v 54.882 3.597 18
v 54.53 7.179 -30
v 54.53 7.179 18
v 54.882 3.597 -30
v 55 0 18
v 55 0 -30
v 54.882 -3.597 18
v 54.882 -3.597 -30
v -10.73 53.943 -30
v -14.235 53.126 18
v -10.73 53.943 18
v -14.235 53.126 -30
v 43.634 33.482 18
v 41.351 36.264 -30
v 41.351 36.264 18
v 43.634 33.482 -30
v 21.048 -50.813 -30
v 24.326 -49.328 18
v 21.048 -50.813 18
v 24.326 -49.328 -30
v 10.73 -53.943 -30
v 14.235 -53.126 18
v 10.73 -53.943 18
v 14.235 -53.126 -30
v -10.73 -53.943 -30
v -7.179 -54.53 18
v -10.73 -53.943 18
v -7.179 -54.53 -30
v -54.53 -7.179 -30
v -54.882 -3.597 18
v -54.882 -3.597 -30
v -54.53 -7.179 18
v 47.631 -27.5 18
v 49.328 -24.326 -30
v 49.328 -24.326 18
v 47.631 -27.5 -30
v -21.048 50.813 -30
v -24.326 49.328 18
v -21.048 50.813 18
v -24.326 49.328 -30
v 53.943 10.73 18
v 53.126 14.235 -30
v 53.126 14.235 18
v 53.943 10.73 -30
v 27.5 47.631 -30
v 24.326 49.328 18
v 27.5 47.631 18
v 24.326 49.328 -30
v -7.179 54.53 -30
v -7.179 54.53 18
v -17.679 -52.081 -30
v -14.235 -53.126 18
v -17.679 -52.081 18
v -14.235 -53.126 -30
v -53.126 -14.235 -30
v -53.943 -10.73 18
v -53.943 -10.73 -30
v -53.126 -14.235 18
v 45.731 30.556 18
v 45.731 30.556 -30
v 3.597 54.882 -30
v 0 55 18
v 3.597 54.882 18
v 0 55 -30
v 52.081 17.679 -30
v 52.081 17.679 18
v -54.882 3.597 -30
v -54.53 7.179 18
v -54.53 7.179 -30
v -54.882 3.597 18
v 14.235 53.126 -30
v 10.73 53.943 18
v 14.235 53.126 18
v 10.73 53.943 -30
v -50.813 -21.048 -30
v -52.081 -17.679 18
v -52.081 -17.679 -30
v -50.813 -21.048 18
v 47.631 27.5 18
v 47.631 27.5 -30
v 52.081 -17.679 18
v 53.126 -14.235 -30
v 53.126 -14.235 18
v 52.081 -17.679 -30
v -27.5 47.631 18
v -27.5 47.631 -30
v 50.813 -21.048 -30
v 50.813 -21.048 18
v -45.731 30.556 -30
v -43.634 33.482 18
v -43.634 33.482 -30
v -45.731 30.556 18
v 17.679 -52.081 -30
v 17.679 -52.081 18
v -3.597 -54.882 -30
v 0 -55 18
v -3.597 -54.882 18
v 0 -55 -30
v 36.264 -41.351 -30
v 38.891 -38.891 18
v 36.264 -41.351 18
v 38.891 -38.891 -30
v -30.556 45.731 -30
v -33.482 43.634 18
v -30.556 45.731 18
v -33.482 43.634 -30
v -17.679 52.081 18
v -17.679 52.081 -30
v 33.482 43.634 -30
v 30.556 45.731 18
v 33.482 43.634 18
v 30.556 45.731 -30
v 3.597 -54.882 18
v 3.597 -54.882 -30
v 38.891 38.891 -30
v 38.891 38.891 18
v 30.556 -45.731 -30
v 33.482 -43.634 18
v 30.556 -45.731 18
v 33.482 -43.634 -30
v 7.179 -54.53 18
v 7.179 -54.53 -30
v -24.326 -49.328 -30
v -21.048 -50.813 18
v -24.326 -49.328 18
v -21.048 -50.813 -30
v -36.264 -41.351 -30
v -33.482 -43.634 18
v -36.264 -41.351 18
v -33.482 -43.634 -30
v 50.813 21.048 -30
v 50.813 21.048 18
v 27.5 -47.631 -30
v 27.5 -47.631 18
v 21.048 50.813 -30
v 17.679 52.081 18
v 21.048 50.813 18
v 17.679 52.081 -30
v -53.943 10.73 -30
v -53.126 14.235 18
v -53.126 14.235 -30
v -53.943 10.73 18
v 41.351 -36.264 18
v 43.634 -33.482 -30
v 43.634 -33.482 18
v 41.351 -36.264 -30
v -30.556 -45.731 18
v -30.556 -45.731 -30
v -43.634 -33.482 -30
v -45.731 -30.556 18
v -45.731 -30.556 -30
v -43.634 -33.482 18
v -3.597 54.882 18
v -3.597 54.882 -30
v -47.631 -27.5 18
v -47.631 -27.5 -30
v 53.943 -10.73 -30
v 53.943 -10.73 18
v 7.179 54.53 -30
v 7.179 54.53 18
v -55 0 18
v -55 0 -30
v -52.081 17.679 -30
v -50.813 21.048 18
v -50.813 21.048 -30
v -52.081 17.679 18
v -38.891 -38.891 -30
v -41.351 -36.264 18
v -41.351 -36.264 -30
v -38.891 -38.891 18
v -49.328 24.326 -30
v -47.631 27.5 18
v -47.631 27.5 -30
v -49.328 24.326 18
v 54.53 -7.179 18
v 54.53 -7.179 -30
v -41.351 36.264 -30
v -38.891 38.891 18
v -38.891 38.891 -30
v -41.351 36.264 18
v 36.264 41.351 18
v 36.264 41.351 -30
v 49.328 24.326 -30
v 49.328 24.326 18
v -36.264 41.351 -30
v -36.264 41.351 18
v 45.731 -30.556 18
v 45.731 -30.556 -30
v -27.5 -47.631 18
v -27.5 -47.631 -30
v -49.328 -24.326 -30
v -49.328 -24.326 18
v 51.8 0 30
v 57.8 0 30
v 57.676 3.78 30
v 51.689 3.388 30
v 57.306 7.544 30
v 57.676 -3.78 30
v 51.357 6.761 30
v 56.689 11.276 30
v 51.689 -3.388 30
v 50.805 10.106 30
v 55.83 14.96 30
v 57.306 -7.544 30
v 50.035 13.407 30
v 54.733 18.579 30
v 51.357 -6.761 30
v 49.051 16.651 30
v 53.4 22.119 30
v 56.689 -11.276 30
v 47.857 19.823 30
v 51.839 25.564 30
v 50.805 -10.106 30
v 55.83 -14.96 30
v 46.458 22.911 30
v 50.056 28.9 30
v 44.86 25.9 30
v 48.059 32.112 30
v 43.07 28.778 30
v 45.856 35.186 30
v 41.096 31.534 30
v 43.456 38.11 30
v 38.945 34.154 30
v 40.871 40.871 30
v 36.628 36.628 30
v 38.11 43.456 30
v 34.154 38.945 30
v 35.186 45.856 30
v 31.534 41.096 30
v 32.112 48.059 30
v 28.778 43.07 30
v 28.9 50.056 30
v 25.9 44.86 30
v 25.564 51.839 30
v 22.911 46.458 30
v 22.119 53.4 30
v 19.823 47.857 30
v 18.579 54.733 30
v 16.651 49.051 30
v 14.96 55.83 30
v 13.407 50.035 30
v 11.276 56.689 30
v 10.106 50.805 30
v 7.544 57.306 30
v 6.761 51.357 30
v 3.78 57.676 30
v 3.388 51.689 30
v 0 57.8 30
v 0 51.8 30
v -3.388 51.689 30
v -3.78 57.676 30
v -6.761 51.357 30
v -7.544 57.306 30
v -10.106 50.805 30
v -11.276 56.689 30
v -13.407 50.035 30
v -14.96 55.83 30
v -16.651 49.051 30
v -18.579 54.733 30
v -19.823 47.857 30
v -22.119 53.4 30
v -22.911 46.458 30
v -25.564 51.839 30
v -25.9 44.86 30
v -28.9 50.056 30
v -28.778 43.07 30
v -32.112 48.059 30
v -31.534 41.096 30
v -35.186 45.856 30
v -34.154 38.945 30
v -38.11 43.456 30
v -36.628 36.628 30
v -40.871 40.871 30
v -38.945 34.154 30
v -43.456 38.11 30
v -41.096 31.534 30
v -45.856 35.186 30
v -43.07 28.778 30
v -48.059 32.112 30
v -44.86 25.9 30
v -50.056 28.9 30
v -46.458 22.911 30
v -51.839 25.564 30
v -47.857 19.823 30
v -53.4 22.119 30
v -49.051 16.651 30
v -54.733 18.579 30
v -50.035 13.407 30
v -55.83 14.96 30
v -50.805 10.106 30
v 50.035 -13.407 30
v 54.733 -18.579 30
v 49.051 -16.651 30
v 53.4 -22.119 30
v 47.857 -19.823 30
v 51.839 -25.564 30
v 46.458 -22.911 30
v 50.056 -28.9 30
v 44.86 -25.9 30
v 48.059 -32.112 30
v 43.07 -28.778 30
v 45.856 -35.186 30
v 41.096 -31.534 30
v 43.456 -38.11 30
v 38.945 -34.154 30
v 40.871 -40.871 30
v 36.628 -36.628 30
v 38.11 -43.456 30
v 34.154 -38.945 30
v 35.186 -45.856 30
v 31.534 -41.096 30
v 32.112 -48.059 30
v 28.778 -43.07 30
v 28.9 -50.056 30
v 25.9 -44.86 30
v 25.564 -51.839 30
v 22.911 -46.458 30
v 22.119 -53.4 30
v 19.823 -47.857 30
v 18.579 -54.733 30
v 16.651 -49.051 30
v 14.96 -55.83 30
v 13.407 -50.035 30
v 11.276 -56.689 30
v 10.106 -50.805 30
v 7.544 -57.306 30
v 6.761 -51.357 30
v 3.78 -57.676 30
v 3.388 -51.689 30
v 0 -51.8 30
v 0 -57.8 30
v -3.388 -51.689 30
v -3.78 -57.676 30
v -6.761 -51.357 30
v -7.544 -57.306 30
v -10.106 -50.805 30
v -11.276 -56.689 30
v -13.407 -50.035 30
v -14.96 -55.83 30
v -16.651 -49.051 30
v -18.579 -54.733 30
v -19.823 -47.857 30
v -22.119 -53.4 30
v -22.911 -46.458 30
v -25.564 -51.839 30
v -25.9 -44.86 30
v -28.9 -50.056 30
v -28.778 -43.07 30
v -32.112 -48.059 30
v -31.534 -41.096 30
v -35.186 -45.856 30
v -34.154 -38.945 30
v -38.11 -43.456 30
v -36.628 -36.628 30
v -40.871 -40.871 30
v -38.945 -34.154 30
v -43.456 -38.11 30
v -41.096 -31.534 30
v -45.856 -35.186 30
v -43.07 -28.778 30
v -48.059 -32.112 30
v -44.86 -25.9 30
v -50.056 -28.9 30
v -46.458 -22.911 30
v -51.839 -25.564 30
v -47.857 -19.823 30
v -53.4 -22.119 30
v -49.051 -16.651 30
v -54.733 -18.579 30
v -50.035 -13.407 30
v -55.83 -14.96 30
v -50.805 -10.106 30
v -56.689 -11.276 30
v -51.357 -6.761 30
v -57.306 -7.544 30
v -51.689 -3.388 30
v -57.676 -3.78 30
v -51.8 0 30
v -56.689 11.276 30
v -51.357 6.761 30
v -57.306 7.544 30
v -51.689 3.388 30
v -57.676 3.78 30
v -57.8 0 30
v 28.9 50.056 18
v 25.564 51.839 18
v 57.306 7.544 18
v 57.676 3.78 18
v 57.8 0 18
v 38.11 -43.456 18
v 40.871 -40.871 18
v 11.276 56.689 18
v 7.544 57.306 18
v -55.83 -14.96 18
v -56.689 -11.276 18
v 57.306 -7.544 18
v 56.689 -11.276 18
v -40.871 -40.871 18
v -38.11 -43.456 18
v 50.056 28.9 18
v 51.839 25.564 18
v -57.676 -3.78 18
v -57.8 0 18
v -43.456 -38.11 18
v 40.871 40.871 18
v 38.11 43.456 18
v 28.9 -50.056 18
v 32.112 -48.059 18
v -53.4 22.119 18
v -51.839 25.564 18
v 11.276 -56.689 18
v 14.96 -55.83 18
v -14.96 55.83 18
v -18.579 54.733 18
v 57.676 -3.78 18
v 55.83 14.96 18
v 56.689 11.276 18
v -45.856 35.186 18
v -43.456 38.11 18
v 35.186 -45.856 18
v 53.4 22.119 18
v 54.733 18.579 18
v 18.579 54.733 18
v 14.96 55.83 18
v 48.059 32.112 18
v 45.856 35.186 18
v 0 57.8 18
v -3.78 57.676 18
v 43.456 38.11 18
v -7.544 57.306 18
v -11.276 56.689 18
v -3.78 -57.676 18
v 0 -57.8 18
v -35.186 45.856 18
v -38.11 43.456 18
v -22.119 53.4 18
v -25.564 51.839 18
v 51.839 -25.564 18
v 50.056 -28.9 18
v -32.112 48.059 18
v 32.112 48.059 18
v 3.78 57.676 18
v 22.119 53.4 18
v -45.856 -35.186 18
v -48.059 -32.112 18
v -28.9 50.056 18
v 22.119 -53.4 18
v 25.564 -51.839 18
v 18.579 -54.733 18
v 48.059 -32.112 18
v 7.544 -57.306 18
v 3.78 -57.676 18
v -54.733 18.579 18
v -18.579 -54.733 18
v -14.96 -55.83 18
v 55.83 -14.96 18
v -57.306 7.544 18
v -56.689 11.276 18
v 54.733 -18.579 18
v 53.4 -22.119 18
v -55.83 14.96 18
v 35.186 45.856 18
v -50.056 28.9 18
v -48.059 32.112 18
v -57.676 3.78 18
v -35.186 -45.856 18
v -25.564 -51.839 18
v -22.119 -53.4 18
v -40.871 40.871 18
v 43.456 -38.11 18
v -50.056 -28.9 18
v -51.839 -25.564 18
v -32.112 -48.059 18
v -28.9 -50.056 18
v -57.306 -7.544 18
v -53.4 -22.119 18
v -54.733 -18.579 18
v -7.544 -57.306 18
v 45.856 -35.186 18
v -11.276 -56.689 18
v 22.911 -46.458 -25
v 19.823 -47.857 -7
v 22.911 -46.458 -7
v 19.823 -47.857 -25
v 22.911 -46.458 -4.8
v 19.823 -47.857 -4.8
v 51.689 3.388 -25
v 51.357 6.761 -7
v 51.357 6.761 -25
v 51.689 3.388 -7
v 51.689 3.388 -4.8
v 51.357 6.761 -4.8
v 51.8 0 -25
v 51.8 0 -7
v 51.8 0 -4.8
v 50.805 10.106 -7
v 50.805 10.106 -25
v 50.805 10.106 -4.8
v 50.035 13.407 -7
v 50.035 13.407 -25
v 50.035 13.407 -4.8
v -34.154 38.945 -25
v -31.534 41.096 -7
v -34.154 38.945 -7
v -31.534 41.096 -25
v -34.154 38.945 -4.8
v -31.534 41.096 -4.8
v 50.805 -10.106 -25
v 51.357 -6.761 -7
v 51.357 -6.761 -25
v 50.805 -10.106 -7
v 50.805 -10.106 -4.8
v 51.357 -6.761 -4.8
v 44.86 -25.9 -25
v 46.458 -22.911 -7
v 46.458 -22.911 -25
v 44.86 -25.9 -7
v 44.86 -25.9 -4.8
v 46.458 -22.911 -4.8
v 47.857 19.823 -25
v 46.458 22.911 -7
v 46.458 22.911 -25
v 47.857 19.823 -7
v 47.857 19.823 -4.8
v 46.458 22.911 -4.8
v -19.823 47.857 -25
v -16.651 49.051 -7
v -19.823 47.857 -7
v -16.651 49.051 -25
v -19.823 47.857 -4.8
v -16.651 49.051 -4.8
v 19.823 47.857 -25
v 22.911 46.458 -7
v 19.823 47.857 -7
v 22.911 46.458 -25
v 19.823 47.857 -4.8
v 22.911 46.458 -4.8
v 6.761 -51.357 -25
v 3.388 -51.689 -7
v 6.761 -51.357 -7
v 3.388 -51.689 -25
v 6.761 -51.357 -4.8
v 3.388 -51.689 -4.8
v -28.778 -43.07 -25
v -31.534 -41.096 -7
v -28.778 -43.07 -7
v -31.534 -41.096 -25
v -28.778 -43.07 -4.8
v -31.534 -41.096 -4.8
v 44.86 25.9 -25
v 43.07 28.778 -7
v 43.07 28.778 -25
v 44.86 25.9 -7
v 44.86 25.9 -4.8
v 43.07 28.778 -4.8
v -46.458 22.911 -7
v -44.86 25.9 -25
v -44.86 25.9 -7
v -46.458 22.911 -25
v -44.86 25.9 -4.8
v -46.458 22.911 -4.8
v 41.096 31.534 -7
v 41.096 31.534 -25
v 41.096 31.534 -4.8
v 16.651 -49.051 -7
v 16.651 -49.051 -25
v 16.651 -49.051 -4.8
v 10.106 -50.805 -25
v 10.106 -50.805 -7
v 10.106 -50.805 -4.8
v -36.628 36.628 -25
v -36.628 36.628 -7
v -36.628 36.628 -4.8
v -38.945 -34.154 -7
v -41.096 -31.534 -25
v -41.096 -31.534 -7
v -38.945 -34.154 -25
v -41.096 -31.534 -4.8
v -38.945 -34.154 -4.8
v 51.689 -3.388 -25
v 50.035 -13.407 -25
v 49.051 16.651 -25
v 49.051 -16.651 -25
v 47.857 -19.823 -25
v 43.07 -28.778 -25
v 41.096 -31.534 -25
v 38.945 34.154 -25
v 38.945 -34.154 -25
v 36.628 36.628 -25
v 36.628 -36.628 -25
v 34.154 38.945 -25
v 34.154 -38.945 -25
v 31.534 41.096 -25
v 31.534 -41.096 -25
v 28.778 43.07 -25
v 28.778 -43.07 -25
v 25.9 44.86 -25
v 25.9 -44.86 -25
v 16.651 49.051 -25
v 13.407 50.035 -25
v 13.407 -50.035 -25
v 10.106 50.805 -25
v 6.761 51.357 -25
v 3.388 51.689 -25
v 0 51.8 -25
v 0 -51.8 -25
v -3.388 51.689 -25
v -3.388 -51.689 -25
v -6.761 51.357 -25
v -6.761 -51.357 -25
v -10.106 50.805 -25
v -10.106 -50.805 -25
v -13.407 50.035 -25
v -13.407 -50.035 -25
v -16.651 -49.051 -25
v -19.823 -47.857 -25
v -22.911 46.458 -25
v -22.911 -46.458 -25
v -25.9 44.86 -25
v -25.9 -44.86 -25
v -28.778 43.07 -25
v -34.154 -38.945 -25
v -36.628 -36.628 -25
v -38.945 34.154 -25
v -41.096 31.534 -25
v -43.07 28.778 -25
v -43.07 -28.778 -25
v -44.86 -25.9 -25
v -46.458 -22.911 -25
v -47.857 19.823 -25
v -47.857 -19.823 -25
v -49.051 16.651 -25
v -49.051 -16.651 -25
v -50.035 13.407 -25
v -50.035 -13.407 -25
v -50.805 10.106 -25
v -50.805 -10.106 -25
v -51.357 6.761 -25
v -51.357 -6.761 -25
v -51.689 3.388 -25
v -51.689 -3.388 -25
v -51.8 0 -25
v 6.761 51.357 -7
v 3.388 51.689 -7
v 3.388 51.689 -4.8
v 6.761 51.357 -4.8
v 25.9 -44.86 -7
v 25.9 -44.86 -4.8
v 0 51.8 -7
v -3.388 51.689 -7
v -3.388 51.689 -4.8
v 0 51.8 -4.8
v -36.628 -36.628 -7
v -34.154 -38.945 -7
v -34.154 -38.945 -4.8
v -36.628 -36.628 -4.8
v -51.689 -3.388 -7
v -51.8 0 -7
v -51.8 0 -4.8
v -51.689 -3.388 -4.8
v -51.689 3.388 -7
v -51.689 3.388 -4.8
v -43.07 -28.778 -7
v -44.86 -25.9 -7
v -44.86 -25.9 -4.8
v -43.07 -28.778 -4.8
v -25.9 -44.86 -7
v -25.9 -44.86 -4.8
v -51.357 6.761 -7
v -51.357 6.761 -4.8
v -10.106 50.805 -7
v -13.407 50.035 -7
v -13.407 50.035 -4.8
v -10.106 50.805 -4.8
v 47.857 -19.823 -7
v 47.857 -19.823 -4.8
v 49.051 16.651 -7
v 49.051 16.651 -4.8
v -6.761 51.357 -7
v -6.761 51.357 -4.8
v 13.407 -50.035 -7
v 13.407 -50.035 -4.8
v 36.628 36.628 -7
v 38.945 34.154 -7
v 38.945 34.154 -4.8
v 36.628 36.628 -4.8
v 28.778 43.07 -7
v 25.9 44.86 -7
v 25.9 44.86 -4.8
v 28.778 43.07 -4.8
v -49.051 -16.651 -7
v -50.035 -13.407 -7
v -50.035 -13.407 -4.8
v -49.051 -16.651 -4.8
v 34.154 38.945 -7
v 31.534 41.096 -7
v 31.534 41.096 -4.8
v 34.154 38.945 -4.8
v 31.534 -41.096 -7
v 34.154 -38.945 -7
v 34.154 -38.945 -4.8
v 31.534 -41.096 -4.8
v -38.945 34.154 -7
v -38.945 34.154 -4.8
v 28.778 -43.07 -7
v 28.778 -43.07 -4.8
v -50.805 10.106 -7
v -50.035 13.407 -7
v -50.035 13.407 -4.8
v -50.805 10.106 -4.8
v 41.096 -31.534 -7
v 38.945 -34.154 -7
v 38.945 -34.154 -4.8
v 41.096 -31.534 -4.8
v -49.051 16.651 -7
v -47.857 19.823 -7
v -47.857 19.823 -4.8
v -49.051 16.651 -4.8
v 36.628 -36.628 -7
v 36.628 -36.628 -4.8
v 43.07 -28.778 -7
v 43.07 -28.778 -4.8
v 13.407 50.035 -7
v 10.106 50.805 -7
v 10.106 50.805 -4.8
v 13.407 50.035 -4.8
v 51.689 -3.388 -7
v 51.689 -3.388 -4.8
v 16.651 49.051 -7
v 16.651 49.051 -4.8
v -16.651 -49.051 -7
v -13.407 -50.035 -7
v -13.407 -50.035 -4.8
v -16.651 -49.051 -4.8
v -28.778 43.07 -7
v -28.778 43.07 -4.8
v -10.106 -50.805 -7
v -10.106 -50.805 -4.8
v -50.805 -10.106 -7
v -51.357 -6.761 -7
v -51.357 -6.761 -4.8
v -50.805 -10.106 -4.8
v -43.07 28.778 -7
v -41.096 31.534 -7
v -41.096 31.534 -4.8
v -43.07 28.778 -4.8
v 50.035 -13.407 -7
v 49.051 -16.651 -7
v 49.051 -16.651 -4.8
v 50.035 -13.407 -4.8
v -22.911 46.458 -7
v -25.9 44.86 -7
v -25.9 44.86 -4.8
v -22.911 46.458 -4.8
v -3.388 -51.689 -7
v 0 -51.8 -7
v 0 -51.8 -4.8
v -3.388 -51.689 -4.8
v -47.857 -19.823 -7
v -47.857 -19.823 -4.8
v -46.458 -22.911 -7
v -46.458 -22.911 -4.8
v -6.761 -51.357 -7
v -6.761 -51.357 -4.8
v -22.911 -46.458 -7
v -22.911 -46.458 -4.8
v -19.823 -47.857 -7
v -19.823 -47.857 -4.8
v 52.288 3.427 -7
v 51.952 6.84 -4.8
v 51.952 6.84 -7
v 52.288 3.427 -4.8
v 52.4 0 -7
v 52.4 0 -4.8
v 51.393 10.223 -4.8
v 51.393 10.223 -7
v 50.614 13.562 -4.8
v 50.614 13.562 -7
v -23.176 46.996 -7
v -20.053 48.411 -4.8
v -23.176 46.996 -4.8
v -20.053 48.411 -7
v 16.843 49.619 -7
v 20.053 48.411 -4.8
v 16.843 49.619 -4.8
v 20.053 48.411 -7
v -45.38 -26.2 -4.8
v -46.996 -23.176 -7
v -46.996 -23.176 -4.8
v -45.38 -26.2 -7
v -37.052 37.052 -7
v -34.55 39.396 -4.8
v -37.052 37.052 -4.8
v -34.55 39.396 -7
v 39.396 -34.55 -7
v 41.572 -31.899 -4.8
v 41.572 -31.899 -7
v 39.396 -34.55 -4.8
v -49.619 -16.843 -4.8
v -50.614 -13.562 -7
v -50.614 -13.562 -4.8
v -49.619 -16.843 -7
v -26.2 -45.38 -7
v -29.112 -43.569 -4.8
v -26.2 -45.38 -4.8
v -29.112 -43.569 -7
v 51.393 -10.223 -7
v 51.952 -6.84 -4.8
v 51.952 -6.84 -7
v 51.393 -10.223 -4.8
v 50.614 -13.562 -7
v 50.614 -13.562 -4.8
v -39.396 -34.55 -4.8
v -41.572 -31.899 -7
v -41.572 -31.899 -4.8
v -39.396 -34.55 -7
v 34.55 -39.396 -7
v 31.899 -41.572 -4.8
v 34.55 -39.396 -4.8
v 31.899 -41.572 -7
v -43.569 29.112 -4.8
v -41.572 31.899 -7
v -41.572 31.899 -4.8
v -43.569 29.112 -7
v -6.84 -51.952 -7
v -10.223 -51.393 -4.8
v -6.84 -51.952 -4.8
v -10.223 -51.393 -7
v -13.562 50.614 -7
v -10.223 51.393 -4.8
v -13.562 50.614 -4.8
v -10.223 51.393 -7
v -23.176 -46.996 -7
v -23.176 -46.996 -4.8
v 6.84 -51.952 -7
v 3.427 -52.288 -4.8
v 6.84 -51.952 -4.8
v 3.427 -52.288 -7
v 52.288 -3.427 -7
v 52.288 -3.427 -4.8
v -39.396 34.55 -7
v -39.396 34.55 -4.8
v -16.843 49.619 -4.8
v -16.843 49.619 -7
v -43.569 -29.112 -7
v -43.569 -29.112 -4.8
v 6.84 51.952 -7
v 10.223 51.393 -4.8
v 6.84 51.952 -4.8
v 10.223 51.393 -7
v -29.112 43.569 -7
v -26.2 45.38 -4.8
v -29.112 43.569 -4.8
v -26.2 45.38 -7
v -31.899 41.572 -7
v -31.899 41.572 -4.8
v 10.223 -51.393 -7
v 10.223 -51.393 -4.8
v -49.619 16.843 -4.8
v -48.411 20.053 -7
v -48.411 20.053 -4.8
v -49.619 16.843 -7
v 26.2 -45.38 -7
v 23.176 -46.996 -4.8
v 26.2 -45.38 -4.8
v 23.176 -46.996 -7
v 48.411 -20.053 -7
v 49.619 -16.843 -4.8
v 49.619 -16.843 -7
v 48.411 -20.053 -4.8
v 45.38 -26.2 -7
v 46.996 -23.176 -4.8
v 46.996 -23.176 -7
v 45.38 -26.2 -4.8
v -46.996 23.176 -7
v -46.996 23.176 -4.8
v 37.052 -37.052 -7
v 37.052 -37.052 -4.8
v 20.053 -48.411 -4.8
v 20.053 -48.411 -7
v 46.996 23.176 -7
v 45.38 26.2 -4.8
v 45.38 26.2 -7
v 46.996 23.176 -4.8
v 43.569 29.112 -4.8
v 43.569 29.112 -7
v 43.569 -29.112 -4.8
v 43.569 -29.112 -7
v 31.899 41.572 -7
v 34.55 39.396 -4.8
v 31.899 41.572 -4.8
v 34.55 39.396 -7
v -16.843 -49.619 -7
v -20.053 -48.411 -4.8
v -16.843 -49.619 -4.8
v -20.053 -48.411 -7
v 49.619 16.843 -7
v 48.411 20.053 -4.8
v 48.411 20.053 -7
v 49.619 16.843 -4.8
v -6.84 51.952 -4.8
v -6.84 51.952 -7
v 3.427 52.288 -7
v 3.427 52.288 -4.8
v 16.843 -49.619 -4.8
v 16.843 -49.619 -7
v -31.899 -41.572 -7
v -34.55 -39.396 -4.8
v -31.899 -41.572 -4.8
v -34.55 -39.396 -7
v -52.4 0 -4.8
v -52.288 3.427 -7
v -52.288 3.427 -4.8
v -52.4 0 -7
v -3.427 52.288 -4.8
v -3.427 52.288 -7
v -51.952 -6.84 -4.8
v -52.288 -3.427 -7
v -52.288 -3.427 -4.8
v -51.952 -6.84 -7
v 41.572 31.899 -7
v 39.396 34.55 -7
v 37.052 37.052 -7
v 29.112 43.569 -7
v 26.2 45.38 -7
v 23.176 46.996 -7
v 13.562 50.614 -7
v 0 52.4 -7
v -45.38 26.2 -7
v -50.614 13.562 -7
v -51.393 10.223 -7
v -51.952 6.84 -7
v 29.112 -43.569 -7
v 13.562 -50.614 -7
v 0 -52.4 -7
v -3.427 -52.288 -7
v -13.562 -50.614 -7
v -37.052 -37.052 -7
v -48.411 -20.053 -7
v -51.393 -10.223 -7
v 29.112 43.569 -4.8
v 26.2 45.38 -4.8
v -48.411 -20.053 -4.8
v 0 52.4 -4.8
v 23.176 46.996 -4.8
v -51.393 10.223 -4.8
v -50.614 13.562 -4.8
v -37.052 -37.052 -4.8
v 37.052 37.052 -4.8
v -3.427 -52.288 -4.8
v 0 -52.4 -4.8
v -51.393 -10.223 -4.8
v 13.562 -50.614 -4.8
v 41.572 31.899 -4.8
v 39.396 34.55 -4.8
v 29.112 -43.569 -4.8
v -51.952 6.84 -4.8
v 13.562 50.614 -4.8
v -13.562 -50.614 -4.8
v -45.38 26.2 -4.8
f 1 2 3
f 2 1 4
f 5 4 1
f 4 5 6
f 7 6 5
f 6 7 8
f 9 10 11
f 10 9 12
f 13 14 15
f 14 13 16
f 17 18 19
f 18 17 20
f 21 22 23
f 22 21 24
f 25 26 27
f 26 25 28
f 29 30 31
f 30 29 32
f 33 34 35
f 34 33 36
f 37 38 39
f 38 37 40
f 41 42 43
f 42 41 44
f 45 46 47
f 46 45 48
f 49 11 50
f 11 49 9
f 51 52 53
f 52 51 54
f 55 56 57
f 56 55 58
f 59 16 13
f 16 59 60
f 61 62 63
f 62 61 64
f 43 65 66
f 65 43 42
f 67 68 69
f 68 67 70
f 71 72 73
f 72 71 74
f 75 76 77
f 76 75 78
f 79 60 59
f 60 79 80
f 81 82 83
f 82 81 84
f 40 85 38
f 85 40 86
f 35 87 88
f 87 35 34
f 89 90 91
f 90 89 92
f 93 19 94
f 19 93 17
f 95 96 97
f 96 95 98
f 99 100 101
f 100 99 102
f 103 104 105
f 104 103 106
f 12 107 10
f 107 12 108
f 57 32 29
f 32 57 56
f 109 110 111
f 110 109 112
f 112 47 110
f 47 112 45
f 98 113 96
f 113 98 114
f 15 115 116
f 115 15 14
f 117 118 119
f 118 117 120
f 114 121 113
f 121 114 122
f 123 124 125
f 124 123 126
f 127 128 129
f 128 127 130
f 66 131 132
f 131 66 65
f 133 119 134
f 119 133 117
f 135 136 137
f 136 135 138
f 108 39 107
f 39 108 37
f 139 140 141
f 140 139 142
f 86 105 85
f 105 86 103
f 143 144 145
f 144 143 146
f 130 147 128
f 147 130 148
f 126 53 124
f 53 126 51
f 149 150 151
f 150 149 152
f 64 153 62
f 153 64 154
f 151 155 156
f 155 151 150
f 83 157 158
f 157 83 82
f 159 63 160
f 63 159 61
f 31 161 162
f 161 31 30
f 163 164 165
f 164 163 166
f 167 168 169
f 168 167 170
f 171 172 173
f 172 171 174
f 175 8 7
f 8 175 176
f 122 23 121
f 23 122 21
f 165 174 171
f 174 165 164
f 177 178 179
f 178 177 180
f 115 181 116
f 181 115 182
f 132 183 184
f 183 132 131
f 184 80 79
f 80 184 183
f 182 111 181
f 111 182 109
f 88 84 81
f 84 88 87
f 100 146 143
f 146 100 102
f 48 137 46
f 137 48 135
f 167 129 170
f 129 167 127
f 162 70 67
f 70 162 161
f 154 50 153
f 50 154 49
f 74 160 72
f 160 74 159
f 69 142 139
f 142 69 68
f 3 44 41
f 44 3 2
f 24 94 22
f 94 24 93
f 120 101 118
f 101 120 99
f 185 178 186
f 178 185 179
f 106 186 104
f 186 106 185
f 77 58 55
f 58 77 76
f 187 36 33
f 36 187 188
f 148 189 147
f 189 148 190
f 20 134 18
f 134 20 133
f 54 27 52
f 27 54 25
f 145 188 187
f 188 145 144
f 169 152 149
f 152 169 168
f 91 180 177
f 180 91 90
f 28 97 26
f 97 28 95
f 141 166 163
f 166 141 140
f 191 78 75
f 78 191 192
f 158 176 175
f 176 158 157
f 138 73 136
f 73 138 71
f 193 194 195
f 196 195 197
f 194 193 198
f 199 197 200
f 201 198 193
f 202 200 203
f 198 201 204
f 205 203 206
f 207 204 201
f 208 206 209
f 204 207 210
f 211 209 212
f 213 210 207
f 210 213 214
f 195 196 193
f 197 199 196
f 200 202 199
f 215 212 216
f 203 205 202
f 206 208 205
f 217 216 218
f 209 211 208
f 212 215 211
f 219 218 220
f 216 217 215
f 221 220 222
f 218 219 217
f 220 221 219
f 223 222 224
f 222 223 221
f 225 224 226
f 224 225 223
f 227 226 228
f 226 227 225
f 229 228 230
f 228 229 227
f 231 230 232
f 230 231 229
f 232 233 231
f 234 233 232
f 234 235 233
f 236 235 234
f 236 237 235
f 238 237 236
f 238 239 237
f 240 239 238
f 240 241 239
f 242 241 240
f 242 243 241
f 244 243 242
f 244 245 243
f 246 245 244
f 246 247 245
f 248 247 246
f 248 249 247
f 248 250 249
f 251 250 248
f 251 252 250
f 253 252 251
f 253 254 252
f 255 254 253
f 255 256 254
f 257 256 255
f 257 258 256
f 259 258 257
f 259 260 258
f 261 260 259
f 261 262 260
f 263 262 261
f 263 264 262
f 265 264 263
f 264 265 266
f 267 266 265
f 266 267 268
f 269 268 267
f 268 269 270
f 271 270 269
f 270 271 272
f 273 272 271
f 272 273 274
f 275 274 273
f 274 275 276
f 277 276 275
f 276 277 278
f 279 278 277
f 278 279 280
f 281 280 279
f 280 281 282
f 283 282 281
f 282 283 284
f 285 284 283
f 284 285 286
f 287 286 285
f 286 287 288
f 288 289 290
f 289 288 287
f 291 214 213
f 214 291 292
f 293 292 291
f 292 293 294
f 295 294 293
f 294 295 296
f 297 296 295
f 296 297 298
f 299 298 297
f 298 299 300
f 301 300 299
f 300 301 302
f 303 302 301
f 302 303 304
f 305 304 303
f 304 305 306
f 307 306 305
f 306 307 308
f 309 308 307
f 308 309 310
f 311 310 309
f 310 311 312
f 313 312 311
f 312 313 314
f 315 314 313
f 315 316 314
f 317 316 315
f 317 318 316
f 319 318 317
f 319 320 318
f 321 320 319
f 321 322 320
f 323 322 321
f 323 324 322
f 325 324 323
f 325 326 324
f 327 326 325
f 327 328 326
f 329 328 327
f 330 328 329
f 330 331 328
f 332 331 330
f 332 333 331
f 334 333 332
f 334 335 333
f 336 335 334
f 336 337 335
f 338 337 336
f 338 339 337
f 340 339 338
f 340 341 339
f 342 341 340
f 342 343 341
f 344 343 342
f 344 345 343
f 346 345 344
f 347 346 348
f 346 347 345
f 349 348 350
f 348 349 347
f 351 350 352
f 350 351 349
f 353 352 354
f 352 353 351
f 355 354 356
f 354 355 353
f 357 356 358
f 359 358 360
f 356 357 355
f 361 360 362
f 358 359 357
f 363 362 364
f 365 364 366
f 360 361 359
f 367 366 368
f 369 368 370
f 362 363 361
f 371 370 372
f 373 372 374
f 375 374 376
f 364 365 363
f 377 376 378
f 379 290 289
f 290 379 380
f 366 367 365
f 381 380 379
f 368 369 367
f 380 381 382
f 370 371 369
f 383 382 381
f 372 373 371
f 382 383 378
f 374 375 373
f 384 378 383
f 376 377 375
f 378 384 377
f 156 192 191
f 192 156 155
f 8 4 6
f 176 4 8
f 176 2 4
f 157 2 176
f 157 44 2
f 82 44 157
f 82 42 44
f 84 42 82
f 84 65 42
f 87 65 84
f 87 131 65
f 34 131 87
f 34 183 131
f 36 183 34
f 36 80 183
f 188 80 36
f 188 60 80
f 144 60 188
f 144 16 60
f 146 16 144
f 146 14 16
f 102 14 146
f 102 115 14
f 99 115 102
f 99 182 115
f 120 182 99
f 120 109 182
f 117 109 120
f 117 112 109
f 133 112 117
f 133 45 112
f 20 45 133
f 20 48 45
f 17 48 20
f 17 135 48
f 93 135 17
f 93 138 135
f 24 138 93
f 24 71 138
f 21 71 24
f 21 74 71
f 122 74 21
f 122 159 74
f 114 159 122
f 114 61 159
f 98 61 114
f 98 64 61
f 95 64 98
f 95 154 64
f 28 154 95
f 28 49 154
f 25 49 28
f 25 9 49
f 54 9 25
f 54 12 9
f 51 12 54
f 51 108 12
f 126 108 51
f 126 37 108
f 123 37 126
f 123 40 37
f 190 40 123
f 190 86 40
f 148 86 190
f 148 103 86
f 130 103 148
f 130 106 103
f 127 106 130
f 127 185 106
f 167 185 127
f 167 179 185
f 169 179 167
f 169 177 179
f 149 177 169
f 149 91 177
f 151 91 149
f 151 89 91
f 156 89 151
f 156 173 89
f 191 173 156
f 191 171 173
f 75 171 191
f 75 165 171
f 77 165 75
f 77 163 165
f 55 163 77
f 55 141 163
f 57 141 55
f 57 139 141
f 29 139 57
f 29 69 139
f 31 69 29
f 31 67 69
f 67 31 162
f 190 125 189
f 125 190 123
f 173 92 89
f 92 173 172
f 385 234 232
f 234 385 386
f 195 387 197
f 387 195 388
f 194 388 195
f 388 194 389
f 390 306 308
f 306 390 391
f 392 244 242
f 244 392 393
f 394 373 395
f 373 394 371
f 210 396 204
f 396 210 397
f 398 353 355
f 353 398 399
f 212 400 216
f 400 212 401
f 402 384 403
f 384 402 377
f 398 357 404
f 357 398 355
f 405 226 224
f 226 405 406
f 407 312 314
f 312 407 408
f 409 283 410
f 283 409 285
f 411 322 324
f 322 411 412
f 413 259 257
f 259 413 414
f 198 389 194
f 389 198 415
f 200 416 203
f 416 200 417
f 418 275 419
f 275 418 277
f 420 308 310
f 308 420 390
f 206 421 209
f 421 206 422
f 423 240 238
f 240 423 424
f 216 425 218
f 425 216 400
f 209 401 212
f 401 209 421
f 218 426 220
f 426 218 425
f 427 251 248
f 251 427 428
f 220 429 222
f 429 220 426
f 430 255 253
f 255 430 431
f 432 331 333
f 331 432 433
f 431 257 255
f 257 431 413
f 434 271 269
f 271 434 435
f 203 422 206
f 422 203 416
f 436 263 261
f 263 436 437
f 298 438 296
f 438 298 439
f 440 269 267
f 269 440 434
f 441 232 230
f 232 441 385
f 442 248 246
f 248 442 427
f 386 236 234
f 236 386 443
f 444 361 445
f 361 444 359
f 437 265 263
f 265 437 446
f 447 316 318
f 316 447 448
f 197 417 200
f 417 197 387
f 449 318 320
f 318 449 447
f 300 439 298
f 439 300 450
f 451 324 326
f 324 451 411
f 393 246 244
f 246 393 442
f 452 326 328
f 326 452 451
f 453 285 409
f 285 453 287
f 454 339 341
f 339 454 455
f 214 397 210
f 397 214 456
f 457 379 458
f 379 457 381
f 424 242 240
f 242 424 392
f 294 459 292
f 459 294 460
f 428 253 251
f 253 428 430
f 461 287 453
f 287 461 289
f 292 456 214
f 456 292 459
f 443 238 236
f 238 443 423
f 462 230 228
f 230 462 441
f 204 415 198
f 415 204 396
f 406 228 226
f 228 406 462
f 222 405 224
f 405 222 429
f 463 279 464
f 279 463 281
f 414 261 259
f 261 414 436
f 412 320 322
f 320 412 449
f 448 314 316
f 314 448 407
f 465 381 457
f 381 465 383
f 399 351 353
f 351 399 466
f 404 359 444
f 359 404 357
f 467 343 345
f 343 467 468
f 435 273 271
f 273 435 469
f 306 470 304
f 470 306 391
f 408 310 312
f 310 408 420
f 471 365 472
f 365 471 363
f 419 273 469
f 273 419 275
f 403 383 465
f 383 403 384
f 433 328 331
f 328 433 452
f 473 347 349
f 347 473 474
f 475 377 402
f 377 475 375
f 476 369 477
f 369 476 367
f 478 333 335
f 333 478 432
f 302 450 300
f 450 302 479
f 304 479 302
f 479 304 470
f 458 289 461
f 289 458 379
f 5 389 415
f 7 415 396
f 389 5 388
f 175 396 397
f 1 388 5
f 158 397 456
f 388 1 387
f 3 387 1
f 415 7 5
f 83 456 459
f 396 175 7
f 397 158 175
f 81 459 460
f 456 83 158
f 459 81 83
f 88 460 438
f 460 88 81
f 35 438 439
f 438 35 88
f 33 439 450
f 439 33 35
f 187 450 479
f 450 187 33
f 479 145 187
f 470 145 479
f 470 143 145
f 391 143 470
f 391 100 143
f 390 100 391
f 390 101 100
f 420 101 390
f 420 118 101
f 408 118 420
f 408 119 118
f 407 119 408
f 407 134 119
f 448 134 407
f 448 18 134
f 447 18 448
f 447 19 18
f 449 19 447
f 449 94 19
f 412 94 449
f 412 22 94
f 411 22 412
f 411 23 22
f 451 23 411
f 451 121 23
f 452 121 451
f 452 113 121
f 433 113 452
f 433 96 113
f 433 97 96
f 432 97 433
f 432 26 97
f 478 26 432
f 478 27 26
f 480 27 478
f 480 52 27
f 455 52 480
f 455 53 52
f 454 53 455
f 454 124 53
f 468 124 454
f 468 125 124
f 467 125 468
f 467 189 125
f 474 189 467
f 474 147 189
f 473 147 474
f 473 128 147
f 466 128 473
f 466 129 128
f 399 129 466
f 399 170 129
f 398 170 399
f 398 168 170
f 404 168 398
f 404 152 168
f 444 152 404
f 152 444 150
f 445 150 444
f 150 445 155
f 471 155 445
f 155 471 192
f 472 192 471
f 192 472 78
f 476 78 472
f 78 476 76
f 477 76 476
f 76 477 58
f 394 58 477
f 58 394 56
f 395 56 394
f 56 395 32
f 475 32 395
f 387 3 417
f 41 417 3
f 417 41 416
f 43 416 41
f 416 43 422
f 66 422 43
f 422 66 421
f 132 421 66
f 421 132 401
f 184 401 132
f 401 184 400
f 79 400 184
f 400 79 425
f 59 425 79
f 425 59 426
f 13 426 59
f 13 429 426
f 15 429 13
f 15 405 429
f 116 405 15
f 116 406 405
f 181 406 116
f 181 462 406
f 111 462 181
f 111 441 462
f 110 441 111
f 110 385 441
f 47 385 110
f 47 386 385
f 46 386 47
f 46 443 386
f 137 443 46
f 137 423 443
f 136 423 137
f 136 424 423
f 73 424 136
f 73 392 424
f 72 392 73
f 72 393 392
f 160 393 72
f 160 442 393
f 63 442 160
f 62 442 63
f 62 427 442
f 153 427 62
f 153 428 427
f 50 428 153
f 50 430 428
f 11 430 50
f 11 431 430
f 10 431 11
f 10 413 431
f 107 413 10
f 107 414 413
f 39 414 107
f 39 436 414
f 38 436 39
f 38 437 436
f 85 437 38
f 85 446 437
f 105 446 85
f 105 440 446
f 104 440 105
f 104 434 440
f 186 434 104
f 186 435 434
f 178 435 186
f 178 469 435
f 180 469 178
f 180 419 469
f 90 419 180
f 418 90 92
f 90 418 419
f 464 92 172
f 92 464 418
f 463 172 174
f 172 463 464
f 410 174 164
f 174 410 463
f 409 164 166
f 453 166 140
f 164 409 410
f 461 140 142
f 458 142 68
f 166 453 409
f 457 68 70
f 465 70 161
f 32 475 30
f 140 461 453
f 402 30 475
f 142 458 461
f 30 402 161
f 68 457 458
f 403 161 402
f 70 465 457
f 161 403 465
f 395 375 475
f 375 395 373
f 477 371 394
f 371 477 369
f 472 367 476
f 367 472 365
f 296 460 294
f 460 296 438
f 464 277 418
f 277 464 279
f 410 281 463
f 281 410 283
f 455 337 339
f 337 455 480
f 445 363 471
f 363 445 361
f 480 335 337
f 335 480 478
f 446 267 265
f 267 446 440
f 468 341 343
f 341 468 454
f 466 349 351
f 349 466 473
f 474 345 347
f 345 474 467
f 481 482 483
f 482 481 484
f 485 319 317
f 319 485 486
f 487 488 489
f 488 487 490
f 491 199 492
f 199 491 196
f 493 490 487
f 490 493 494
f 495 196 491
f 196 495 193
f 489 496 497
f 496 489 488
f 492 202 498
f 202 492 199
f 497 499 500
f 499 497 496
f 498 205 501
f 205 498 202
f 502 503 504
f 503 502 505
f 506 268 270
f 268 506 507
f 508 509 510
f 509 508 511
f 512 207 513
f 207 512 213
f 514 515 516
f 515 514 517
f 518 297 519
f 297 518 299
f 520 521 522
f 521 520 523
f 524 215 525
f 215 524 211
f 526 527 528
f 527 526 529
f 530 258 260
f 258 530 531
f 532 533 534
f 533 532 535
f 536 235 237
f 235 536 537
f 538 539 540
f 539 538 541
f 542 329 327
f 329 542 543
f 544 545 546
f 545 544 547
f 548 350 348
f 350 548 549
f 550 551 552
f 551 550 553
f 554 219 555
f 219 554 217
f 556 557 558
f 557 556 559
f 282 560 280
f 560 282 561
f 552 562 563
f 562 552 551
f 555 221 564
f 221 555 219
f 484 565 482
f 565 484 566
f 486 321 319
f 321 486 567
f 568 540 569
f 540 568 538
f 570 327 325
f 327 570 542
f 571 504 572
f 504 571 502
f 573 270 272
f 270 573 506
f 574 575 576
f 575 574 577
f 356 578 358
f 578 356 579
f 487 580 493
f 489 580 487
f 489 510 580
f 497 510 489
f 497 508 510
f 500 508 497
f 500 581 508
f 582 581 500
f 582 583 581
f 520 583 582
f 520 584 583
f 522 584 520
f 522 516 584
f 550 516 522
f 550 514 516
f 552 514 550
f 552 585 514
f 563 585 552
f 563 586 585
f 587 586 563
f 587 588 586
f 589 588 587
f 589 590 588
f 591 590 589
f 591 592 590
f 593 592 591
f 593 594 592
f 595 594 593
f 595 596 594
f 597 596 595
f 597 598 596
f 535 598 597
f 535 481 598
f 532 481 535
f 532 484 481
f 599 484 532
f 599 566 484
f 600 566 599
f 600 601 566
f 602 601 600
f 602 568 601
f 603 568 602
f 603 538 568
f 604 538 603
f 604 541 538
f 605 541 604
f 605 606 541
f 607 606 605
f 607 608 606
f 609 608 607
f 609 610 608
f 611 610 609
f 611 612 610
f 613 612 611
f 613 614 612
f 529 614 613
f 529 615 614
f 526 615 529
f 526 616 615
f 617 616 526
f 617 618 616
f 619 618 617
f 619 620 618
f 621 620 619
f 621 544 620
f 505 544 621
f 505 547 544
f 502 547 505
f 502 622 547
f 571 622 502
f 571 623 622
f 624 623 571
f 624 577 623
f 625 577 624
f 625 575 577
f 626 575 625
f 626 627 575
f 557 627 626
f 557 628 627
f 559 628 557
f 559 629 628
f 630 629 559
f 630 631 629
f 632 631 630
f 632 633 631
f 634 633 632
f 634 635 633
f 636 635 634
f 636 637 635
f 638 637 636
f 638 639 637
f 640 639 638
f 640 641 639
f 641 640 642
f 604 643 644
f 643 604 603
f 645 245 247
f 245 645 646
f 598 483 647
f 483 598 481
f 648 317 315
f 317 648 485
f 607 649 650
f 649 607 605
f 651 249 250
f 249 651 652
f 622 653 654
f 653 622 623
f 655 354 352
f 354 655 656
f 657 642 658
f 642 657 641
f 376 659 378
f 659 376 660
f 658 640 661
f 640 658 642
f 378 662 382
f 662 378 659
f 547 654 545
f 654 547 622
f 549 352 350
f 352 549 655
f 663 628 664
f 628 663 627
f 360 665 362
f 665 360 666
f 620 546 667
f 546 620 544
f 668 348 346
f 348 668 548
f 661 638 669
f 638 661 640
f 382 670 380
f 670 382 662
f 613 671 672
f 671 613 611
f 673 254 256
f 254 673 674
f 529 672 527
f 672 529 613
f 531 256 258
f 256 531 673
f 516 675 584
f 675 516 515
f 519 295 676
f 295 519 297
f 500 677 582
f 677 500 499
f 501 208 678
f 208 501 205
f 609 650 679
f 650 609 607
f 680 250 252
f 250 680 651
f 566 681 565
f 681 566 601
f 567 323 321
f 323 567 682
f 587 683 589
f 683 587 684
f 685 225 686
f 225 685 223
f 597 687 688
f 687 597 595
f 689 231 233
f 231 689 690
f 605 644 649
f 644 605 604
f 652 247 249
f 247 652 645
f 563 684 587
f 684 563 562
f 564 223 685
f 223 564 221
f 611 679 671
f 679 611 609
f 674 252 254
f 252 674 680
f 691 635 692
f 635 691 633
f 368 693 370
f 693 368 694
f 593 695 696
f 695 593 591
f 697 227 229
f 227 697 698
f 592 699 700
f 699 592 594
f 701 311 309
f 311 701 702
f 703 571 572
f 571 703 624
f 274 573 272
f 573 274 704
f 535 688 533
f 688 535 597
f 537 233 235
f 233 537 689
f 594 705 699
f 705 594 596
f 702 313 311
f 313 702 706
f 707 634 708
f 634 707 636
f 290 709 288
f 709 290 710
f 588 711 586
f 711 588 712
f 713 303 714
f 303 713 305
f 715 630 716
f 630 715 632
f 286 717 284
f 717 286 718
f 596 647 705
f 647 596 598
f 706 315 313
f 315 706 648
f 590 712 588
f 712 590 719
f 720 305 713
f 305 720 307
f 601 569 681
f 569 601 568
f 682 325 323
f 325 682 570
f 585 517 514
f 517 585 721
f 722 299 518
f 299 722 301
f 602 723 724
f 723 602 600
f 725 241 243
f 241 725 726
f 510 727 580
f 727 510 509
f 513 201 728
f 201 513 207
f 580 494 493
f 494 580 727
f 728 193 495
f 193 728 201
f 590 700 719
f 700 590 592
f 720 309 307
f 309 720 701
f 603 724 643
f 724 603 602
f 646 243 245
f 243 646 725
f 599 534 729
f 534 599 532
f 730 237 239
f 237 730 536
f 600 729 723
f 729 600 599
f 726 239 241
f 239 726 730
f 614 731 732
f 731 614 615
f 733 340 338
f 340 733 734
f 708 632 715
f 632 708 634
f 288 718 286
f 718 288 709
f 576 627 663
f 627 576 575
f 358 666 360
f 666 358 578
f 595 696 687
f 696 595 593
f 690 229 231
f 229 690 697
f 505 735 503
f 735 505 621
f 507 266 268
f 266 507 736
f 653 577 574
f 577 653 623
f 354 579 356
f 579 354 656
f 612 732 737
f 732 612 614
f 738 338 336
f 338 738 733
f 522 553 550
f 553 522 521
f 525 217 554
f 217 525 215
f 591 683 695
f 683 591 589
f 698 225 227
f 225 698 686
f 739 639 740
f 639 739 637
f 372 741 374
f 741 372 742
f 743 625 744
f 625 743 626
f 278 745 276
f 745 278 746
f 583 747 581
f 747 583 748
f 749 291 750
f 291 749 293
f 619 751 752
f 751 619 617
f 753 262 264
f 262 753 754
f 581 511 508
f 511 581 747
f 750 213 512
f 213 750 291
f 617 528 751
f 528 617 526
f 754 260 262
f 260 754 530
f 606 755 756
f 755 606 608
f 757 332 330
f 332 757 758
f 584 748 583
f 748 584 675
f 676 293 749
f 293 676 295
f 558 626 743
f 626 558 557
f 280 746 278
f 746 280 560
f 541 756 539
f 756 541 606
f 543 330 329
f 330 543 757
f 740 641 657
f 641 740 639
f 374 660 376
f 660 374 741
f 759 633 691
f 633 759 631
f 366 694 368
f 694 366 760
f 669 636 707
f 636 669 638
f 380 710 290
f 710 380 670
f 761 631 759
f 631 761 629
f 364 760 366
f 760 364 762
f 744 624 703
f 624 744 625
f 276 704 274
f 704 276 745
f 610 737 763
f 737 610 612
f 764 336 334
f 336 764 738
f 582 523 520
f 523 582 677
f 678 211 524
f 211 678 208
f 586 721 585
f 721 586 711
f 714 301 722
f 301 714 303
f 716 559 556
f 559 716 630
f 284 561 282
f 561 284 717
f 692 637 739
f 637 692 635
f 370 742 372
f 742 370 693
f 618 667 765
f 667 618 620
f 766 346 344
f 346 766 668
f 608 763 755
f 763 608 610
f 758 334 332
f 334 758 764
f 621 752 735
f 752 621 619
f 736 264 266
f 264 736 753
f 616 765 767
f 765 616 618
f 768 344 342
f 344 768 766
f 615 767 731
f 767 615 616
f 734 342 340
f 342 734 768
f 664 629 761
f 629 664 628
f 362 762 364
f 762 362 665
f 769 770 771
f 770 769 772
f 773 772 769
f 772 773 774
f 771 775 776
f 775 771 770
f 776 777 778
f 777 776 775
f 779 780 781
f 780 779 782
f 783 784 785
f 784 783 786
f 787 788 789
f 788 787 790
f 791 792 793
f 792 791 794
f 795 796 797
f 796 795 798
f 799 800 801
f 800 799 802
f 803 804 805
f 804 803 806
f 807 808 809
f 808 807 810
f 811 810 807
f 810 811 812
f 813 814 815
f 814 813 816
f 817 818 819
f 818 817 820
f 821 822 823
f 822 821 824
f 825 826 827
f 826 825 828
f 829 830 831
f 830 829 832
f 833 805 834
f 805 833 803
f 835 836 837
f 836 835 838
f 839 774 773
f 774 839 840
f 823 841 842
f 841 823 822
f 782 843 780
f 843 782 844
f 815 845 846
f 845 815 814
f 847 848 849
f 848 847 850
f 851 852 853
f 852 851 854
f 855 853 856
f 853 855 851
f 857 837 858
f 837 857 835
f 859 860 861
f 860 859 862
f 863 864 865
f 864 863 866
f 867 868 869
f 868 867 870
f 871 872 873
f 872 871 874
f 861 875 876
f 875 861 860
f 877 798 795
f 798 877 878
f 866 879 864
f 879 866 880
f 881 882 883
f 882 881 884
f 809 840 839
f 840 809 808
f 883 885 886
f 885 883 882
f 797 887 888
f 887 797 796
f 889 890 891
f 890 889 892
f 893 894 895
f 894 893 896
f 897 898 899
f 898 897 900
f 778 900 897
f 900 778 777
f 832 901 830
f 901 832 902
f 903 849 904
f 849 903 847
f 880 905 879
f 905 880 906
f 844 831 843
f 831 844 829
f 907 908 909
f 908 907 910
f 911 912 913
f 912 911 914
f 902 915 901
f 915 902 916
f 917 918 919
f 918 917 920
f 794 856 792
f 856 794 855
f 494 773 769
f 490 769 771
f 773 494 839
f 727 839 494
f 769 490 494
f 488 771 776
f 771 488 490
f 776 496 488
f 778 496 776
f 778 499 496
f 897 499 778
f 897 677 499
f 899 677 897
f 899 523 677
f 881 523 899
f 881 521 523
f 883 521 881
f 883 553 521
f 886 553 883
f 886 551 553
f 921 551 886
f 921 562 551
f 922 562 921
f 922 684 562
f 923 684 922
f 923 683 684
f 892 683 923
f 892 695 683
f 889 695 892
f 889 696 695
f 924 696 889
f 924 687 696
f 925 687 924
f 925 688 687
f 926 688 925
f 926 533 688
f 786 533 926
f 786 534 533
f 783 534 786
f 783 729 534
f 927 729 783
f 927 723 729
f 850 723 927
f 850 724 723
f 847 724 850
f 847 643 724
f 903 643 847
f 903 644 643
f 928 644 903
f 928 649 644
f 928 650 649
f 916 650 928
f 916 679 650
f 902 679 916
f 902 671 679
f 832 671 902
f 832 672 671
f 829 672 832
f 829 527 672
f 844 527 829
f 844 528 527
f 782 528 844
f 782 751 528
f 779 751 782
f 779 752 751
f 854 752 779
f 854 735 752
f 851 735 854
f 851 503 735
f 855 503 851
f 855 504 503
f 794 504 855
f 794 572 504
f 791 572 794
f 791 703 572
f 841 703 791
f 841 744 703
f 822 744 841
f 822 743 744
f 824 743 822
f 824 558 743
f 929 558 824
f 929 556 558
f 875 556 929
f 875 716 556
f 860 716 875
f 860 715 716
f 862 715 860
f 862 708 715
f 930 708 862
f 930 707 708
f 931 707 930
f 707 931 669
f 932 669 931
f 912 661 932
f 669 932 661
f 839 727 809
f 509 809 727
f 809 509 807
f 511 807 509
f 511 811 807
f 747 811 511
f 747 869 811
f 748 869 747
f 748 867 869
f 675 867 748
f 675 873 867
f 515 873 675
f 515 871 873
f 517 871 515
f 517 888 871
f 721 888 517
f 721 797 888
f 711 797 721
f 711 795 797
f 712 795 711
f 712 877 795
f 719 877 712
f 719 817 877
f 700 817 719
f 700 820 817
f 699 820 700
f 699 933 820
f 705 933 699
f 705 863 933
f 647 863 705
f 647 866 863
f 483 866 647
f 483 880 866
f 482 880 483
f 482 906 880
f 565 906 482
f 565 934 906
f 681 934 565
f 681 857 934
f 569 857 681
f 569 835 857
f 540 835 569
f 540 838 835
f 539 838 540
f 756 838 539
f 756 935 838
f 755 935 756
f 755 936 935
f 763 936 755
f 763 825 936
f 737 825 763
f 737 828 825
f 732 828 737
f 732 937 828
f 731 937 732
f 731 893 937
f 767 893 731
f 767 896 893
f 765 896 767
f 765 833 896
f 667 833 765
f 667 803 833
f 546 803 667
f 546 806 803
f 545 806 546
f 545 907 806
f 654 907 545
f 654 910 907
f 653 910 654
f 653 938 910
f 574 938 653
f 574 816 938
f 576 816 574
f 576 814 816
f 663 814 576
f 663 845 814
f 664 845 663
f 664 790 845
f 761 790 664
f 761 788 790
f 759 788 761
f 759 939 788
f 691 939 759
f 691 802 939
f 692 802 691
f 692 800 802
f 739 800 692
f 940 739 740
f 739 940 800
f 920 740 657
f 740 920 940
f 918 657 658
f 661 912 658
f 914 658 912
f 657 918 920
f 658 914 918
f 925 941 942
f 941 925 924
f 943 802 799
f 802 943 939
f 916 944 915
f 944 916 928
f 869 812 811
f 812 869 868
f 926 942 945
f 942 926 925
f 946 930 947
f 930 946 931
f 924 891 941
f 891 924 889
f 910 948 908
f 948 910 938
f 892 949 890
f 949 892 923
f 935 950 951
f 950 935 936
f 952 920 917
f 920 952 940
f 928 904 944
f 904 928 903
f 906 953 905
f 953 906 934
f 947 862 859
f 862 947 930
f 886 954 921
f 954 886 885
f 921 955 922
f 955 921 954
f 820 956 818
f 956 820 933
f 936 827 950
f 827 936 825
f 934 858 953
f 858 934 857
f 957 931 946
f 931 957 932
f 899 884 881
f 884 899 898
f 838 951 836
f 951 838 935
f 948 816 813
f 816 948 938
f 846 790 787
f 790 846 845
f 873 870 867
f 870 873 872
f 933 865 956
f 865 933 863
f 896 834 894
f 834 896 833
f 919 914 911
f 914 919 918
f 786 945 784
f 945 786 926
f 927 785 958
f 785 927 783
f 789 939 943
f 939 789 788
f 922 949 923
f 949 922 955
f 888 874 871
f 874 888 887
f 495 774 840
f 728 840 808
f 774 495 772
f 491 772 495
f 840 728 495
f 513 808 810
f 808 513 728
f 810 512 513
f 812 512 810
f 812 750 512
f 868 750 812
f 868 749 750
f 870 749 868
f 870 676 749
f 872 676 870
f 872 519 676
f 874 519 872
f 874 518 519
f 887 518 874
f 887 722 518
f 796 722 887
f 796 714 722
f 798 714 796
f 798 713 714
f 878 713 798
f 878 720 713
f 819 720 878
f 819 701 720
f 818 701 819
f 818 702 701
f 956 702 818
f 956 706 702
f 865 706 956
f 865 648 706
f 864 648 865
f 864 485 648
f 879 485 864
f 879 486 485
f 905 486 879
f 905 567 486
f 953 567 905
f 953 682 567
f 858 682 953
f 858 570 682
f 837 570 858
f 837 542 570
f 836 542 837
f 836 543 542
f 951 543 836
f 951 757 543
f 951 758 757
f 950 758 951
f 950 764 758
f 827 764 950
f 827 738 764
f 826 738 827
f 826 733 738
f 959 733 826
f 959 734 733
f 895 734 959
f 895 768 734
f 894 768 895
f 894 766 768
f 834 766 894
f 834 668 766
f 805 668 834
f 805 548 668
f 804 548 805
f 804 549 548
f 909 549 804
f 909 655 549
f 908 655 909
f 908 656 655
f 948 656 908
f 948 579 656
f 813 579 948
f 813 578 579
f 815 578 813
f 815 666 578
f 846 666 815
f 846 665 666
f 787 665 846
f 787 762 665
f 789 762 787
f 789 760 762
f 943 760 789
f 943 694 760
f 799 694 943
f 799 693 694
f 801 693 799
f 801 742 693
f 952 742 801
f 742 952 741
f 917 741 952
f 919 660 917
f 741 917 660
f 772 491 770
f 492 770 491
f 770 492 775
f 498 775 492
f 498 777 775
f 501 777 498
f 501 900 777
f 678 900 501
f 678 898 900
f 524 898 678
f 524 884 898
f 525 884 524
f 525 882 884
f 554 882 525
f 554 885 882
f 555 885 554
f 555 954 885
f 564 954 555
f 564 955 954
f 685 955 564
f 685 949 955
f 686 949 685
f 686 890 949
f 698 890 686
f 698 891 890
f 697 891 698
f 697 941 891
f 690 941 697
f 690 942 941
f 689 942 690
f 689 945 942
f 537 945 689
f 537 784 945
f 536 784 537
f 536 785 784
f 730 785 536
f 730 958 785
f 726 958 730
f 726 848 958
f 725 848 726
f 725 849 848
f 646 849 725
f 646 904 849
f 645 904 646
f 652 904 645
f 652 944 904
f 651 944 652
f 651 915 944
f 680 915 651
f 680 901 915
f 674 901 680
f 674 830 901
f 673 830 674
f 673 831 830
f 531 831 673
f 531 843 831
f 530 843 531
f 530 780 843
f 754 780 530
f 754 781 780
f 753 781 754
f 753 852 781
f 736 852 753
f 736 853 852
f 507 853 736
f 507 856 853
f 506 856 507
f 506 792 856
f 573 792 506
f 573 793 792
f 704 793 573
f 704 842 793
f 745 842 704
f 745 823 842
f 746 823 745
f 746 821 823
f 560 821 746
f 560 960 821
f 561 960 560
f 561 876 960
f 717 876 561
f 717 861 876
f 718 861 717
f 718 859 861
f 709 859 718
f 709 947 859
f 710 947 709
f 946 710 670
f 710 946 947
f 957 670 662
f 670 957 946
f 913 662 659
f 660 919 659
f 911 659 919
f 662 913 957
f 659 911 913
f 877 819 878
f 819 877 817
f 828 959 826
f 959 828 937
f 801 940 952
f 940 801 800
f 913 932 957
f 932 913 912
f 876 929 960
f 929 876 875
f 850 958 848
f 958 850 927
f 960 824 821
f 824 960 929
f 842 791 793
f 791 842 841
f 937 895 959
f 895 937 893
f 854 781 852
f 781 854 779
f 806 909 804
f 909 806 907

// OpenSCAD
$fn = 96;

module ht_end_cap(nom_d=110) {
    // Approximate HT pipe end cap for nominal 110 mm
    // Typical OD ~110 mm; make an internal socket with a modest wall and a closed end.
    od = nom_d;           // outer diameter
    wall = 3.2;           // cap wall thickness
    socket_depth = 55;    // insertion depth
    end_thickness = 5;    // closed-end thickness
    lip_height = 12;      // outer lip height
    lip_thickness = 2.8;  // extra radial thickness at lip

    outer_h = socket_depth + end_thickness;

    difference() {
        union() {
            // Main outer body
            cylinder(h=outer_h, d=od);

            // Slight outer lip near the opening
            translate([0,0,outer_h - lip_height])
                cylinder(h=lip_height, d=od + 2*lip_thickness);

            // Small external chamfer-like taper at opening
            translate([0,0,outer_h - 3])
                cylinder(h=3, d1=od + 2*lip_thickness, d2=od + 2*lip_thickness - 2);
        }

        // Internal cavity (socket), leaving closed end thickness
        translate([0,0,end_thickness])
            cylinder(h=socket_depth + 0.2, d=od - 2*wall);

        // Inner lead-in chamfer at opening
        translate([0,0,outer_h - 8])
            cylinder(h=8.2, d1=(od - 2*wall) - 4, d2=(od - 2*wall));

        // Optional small internal stop ridge removal (creates slight step)
        translate([0,0,end_thickness + 18])
            cylinder(h=2.2, d=(od - 2*wall) + 1.2);
    }
}

translate([0,0,-30])
    ht_end_cap(110);
